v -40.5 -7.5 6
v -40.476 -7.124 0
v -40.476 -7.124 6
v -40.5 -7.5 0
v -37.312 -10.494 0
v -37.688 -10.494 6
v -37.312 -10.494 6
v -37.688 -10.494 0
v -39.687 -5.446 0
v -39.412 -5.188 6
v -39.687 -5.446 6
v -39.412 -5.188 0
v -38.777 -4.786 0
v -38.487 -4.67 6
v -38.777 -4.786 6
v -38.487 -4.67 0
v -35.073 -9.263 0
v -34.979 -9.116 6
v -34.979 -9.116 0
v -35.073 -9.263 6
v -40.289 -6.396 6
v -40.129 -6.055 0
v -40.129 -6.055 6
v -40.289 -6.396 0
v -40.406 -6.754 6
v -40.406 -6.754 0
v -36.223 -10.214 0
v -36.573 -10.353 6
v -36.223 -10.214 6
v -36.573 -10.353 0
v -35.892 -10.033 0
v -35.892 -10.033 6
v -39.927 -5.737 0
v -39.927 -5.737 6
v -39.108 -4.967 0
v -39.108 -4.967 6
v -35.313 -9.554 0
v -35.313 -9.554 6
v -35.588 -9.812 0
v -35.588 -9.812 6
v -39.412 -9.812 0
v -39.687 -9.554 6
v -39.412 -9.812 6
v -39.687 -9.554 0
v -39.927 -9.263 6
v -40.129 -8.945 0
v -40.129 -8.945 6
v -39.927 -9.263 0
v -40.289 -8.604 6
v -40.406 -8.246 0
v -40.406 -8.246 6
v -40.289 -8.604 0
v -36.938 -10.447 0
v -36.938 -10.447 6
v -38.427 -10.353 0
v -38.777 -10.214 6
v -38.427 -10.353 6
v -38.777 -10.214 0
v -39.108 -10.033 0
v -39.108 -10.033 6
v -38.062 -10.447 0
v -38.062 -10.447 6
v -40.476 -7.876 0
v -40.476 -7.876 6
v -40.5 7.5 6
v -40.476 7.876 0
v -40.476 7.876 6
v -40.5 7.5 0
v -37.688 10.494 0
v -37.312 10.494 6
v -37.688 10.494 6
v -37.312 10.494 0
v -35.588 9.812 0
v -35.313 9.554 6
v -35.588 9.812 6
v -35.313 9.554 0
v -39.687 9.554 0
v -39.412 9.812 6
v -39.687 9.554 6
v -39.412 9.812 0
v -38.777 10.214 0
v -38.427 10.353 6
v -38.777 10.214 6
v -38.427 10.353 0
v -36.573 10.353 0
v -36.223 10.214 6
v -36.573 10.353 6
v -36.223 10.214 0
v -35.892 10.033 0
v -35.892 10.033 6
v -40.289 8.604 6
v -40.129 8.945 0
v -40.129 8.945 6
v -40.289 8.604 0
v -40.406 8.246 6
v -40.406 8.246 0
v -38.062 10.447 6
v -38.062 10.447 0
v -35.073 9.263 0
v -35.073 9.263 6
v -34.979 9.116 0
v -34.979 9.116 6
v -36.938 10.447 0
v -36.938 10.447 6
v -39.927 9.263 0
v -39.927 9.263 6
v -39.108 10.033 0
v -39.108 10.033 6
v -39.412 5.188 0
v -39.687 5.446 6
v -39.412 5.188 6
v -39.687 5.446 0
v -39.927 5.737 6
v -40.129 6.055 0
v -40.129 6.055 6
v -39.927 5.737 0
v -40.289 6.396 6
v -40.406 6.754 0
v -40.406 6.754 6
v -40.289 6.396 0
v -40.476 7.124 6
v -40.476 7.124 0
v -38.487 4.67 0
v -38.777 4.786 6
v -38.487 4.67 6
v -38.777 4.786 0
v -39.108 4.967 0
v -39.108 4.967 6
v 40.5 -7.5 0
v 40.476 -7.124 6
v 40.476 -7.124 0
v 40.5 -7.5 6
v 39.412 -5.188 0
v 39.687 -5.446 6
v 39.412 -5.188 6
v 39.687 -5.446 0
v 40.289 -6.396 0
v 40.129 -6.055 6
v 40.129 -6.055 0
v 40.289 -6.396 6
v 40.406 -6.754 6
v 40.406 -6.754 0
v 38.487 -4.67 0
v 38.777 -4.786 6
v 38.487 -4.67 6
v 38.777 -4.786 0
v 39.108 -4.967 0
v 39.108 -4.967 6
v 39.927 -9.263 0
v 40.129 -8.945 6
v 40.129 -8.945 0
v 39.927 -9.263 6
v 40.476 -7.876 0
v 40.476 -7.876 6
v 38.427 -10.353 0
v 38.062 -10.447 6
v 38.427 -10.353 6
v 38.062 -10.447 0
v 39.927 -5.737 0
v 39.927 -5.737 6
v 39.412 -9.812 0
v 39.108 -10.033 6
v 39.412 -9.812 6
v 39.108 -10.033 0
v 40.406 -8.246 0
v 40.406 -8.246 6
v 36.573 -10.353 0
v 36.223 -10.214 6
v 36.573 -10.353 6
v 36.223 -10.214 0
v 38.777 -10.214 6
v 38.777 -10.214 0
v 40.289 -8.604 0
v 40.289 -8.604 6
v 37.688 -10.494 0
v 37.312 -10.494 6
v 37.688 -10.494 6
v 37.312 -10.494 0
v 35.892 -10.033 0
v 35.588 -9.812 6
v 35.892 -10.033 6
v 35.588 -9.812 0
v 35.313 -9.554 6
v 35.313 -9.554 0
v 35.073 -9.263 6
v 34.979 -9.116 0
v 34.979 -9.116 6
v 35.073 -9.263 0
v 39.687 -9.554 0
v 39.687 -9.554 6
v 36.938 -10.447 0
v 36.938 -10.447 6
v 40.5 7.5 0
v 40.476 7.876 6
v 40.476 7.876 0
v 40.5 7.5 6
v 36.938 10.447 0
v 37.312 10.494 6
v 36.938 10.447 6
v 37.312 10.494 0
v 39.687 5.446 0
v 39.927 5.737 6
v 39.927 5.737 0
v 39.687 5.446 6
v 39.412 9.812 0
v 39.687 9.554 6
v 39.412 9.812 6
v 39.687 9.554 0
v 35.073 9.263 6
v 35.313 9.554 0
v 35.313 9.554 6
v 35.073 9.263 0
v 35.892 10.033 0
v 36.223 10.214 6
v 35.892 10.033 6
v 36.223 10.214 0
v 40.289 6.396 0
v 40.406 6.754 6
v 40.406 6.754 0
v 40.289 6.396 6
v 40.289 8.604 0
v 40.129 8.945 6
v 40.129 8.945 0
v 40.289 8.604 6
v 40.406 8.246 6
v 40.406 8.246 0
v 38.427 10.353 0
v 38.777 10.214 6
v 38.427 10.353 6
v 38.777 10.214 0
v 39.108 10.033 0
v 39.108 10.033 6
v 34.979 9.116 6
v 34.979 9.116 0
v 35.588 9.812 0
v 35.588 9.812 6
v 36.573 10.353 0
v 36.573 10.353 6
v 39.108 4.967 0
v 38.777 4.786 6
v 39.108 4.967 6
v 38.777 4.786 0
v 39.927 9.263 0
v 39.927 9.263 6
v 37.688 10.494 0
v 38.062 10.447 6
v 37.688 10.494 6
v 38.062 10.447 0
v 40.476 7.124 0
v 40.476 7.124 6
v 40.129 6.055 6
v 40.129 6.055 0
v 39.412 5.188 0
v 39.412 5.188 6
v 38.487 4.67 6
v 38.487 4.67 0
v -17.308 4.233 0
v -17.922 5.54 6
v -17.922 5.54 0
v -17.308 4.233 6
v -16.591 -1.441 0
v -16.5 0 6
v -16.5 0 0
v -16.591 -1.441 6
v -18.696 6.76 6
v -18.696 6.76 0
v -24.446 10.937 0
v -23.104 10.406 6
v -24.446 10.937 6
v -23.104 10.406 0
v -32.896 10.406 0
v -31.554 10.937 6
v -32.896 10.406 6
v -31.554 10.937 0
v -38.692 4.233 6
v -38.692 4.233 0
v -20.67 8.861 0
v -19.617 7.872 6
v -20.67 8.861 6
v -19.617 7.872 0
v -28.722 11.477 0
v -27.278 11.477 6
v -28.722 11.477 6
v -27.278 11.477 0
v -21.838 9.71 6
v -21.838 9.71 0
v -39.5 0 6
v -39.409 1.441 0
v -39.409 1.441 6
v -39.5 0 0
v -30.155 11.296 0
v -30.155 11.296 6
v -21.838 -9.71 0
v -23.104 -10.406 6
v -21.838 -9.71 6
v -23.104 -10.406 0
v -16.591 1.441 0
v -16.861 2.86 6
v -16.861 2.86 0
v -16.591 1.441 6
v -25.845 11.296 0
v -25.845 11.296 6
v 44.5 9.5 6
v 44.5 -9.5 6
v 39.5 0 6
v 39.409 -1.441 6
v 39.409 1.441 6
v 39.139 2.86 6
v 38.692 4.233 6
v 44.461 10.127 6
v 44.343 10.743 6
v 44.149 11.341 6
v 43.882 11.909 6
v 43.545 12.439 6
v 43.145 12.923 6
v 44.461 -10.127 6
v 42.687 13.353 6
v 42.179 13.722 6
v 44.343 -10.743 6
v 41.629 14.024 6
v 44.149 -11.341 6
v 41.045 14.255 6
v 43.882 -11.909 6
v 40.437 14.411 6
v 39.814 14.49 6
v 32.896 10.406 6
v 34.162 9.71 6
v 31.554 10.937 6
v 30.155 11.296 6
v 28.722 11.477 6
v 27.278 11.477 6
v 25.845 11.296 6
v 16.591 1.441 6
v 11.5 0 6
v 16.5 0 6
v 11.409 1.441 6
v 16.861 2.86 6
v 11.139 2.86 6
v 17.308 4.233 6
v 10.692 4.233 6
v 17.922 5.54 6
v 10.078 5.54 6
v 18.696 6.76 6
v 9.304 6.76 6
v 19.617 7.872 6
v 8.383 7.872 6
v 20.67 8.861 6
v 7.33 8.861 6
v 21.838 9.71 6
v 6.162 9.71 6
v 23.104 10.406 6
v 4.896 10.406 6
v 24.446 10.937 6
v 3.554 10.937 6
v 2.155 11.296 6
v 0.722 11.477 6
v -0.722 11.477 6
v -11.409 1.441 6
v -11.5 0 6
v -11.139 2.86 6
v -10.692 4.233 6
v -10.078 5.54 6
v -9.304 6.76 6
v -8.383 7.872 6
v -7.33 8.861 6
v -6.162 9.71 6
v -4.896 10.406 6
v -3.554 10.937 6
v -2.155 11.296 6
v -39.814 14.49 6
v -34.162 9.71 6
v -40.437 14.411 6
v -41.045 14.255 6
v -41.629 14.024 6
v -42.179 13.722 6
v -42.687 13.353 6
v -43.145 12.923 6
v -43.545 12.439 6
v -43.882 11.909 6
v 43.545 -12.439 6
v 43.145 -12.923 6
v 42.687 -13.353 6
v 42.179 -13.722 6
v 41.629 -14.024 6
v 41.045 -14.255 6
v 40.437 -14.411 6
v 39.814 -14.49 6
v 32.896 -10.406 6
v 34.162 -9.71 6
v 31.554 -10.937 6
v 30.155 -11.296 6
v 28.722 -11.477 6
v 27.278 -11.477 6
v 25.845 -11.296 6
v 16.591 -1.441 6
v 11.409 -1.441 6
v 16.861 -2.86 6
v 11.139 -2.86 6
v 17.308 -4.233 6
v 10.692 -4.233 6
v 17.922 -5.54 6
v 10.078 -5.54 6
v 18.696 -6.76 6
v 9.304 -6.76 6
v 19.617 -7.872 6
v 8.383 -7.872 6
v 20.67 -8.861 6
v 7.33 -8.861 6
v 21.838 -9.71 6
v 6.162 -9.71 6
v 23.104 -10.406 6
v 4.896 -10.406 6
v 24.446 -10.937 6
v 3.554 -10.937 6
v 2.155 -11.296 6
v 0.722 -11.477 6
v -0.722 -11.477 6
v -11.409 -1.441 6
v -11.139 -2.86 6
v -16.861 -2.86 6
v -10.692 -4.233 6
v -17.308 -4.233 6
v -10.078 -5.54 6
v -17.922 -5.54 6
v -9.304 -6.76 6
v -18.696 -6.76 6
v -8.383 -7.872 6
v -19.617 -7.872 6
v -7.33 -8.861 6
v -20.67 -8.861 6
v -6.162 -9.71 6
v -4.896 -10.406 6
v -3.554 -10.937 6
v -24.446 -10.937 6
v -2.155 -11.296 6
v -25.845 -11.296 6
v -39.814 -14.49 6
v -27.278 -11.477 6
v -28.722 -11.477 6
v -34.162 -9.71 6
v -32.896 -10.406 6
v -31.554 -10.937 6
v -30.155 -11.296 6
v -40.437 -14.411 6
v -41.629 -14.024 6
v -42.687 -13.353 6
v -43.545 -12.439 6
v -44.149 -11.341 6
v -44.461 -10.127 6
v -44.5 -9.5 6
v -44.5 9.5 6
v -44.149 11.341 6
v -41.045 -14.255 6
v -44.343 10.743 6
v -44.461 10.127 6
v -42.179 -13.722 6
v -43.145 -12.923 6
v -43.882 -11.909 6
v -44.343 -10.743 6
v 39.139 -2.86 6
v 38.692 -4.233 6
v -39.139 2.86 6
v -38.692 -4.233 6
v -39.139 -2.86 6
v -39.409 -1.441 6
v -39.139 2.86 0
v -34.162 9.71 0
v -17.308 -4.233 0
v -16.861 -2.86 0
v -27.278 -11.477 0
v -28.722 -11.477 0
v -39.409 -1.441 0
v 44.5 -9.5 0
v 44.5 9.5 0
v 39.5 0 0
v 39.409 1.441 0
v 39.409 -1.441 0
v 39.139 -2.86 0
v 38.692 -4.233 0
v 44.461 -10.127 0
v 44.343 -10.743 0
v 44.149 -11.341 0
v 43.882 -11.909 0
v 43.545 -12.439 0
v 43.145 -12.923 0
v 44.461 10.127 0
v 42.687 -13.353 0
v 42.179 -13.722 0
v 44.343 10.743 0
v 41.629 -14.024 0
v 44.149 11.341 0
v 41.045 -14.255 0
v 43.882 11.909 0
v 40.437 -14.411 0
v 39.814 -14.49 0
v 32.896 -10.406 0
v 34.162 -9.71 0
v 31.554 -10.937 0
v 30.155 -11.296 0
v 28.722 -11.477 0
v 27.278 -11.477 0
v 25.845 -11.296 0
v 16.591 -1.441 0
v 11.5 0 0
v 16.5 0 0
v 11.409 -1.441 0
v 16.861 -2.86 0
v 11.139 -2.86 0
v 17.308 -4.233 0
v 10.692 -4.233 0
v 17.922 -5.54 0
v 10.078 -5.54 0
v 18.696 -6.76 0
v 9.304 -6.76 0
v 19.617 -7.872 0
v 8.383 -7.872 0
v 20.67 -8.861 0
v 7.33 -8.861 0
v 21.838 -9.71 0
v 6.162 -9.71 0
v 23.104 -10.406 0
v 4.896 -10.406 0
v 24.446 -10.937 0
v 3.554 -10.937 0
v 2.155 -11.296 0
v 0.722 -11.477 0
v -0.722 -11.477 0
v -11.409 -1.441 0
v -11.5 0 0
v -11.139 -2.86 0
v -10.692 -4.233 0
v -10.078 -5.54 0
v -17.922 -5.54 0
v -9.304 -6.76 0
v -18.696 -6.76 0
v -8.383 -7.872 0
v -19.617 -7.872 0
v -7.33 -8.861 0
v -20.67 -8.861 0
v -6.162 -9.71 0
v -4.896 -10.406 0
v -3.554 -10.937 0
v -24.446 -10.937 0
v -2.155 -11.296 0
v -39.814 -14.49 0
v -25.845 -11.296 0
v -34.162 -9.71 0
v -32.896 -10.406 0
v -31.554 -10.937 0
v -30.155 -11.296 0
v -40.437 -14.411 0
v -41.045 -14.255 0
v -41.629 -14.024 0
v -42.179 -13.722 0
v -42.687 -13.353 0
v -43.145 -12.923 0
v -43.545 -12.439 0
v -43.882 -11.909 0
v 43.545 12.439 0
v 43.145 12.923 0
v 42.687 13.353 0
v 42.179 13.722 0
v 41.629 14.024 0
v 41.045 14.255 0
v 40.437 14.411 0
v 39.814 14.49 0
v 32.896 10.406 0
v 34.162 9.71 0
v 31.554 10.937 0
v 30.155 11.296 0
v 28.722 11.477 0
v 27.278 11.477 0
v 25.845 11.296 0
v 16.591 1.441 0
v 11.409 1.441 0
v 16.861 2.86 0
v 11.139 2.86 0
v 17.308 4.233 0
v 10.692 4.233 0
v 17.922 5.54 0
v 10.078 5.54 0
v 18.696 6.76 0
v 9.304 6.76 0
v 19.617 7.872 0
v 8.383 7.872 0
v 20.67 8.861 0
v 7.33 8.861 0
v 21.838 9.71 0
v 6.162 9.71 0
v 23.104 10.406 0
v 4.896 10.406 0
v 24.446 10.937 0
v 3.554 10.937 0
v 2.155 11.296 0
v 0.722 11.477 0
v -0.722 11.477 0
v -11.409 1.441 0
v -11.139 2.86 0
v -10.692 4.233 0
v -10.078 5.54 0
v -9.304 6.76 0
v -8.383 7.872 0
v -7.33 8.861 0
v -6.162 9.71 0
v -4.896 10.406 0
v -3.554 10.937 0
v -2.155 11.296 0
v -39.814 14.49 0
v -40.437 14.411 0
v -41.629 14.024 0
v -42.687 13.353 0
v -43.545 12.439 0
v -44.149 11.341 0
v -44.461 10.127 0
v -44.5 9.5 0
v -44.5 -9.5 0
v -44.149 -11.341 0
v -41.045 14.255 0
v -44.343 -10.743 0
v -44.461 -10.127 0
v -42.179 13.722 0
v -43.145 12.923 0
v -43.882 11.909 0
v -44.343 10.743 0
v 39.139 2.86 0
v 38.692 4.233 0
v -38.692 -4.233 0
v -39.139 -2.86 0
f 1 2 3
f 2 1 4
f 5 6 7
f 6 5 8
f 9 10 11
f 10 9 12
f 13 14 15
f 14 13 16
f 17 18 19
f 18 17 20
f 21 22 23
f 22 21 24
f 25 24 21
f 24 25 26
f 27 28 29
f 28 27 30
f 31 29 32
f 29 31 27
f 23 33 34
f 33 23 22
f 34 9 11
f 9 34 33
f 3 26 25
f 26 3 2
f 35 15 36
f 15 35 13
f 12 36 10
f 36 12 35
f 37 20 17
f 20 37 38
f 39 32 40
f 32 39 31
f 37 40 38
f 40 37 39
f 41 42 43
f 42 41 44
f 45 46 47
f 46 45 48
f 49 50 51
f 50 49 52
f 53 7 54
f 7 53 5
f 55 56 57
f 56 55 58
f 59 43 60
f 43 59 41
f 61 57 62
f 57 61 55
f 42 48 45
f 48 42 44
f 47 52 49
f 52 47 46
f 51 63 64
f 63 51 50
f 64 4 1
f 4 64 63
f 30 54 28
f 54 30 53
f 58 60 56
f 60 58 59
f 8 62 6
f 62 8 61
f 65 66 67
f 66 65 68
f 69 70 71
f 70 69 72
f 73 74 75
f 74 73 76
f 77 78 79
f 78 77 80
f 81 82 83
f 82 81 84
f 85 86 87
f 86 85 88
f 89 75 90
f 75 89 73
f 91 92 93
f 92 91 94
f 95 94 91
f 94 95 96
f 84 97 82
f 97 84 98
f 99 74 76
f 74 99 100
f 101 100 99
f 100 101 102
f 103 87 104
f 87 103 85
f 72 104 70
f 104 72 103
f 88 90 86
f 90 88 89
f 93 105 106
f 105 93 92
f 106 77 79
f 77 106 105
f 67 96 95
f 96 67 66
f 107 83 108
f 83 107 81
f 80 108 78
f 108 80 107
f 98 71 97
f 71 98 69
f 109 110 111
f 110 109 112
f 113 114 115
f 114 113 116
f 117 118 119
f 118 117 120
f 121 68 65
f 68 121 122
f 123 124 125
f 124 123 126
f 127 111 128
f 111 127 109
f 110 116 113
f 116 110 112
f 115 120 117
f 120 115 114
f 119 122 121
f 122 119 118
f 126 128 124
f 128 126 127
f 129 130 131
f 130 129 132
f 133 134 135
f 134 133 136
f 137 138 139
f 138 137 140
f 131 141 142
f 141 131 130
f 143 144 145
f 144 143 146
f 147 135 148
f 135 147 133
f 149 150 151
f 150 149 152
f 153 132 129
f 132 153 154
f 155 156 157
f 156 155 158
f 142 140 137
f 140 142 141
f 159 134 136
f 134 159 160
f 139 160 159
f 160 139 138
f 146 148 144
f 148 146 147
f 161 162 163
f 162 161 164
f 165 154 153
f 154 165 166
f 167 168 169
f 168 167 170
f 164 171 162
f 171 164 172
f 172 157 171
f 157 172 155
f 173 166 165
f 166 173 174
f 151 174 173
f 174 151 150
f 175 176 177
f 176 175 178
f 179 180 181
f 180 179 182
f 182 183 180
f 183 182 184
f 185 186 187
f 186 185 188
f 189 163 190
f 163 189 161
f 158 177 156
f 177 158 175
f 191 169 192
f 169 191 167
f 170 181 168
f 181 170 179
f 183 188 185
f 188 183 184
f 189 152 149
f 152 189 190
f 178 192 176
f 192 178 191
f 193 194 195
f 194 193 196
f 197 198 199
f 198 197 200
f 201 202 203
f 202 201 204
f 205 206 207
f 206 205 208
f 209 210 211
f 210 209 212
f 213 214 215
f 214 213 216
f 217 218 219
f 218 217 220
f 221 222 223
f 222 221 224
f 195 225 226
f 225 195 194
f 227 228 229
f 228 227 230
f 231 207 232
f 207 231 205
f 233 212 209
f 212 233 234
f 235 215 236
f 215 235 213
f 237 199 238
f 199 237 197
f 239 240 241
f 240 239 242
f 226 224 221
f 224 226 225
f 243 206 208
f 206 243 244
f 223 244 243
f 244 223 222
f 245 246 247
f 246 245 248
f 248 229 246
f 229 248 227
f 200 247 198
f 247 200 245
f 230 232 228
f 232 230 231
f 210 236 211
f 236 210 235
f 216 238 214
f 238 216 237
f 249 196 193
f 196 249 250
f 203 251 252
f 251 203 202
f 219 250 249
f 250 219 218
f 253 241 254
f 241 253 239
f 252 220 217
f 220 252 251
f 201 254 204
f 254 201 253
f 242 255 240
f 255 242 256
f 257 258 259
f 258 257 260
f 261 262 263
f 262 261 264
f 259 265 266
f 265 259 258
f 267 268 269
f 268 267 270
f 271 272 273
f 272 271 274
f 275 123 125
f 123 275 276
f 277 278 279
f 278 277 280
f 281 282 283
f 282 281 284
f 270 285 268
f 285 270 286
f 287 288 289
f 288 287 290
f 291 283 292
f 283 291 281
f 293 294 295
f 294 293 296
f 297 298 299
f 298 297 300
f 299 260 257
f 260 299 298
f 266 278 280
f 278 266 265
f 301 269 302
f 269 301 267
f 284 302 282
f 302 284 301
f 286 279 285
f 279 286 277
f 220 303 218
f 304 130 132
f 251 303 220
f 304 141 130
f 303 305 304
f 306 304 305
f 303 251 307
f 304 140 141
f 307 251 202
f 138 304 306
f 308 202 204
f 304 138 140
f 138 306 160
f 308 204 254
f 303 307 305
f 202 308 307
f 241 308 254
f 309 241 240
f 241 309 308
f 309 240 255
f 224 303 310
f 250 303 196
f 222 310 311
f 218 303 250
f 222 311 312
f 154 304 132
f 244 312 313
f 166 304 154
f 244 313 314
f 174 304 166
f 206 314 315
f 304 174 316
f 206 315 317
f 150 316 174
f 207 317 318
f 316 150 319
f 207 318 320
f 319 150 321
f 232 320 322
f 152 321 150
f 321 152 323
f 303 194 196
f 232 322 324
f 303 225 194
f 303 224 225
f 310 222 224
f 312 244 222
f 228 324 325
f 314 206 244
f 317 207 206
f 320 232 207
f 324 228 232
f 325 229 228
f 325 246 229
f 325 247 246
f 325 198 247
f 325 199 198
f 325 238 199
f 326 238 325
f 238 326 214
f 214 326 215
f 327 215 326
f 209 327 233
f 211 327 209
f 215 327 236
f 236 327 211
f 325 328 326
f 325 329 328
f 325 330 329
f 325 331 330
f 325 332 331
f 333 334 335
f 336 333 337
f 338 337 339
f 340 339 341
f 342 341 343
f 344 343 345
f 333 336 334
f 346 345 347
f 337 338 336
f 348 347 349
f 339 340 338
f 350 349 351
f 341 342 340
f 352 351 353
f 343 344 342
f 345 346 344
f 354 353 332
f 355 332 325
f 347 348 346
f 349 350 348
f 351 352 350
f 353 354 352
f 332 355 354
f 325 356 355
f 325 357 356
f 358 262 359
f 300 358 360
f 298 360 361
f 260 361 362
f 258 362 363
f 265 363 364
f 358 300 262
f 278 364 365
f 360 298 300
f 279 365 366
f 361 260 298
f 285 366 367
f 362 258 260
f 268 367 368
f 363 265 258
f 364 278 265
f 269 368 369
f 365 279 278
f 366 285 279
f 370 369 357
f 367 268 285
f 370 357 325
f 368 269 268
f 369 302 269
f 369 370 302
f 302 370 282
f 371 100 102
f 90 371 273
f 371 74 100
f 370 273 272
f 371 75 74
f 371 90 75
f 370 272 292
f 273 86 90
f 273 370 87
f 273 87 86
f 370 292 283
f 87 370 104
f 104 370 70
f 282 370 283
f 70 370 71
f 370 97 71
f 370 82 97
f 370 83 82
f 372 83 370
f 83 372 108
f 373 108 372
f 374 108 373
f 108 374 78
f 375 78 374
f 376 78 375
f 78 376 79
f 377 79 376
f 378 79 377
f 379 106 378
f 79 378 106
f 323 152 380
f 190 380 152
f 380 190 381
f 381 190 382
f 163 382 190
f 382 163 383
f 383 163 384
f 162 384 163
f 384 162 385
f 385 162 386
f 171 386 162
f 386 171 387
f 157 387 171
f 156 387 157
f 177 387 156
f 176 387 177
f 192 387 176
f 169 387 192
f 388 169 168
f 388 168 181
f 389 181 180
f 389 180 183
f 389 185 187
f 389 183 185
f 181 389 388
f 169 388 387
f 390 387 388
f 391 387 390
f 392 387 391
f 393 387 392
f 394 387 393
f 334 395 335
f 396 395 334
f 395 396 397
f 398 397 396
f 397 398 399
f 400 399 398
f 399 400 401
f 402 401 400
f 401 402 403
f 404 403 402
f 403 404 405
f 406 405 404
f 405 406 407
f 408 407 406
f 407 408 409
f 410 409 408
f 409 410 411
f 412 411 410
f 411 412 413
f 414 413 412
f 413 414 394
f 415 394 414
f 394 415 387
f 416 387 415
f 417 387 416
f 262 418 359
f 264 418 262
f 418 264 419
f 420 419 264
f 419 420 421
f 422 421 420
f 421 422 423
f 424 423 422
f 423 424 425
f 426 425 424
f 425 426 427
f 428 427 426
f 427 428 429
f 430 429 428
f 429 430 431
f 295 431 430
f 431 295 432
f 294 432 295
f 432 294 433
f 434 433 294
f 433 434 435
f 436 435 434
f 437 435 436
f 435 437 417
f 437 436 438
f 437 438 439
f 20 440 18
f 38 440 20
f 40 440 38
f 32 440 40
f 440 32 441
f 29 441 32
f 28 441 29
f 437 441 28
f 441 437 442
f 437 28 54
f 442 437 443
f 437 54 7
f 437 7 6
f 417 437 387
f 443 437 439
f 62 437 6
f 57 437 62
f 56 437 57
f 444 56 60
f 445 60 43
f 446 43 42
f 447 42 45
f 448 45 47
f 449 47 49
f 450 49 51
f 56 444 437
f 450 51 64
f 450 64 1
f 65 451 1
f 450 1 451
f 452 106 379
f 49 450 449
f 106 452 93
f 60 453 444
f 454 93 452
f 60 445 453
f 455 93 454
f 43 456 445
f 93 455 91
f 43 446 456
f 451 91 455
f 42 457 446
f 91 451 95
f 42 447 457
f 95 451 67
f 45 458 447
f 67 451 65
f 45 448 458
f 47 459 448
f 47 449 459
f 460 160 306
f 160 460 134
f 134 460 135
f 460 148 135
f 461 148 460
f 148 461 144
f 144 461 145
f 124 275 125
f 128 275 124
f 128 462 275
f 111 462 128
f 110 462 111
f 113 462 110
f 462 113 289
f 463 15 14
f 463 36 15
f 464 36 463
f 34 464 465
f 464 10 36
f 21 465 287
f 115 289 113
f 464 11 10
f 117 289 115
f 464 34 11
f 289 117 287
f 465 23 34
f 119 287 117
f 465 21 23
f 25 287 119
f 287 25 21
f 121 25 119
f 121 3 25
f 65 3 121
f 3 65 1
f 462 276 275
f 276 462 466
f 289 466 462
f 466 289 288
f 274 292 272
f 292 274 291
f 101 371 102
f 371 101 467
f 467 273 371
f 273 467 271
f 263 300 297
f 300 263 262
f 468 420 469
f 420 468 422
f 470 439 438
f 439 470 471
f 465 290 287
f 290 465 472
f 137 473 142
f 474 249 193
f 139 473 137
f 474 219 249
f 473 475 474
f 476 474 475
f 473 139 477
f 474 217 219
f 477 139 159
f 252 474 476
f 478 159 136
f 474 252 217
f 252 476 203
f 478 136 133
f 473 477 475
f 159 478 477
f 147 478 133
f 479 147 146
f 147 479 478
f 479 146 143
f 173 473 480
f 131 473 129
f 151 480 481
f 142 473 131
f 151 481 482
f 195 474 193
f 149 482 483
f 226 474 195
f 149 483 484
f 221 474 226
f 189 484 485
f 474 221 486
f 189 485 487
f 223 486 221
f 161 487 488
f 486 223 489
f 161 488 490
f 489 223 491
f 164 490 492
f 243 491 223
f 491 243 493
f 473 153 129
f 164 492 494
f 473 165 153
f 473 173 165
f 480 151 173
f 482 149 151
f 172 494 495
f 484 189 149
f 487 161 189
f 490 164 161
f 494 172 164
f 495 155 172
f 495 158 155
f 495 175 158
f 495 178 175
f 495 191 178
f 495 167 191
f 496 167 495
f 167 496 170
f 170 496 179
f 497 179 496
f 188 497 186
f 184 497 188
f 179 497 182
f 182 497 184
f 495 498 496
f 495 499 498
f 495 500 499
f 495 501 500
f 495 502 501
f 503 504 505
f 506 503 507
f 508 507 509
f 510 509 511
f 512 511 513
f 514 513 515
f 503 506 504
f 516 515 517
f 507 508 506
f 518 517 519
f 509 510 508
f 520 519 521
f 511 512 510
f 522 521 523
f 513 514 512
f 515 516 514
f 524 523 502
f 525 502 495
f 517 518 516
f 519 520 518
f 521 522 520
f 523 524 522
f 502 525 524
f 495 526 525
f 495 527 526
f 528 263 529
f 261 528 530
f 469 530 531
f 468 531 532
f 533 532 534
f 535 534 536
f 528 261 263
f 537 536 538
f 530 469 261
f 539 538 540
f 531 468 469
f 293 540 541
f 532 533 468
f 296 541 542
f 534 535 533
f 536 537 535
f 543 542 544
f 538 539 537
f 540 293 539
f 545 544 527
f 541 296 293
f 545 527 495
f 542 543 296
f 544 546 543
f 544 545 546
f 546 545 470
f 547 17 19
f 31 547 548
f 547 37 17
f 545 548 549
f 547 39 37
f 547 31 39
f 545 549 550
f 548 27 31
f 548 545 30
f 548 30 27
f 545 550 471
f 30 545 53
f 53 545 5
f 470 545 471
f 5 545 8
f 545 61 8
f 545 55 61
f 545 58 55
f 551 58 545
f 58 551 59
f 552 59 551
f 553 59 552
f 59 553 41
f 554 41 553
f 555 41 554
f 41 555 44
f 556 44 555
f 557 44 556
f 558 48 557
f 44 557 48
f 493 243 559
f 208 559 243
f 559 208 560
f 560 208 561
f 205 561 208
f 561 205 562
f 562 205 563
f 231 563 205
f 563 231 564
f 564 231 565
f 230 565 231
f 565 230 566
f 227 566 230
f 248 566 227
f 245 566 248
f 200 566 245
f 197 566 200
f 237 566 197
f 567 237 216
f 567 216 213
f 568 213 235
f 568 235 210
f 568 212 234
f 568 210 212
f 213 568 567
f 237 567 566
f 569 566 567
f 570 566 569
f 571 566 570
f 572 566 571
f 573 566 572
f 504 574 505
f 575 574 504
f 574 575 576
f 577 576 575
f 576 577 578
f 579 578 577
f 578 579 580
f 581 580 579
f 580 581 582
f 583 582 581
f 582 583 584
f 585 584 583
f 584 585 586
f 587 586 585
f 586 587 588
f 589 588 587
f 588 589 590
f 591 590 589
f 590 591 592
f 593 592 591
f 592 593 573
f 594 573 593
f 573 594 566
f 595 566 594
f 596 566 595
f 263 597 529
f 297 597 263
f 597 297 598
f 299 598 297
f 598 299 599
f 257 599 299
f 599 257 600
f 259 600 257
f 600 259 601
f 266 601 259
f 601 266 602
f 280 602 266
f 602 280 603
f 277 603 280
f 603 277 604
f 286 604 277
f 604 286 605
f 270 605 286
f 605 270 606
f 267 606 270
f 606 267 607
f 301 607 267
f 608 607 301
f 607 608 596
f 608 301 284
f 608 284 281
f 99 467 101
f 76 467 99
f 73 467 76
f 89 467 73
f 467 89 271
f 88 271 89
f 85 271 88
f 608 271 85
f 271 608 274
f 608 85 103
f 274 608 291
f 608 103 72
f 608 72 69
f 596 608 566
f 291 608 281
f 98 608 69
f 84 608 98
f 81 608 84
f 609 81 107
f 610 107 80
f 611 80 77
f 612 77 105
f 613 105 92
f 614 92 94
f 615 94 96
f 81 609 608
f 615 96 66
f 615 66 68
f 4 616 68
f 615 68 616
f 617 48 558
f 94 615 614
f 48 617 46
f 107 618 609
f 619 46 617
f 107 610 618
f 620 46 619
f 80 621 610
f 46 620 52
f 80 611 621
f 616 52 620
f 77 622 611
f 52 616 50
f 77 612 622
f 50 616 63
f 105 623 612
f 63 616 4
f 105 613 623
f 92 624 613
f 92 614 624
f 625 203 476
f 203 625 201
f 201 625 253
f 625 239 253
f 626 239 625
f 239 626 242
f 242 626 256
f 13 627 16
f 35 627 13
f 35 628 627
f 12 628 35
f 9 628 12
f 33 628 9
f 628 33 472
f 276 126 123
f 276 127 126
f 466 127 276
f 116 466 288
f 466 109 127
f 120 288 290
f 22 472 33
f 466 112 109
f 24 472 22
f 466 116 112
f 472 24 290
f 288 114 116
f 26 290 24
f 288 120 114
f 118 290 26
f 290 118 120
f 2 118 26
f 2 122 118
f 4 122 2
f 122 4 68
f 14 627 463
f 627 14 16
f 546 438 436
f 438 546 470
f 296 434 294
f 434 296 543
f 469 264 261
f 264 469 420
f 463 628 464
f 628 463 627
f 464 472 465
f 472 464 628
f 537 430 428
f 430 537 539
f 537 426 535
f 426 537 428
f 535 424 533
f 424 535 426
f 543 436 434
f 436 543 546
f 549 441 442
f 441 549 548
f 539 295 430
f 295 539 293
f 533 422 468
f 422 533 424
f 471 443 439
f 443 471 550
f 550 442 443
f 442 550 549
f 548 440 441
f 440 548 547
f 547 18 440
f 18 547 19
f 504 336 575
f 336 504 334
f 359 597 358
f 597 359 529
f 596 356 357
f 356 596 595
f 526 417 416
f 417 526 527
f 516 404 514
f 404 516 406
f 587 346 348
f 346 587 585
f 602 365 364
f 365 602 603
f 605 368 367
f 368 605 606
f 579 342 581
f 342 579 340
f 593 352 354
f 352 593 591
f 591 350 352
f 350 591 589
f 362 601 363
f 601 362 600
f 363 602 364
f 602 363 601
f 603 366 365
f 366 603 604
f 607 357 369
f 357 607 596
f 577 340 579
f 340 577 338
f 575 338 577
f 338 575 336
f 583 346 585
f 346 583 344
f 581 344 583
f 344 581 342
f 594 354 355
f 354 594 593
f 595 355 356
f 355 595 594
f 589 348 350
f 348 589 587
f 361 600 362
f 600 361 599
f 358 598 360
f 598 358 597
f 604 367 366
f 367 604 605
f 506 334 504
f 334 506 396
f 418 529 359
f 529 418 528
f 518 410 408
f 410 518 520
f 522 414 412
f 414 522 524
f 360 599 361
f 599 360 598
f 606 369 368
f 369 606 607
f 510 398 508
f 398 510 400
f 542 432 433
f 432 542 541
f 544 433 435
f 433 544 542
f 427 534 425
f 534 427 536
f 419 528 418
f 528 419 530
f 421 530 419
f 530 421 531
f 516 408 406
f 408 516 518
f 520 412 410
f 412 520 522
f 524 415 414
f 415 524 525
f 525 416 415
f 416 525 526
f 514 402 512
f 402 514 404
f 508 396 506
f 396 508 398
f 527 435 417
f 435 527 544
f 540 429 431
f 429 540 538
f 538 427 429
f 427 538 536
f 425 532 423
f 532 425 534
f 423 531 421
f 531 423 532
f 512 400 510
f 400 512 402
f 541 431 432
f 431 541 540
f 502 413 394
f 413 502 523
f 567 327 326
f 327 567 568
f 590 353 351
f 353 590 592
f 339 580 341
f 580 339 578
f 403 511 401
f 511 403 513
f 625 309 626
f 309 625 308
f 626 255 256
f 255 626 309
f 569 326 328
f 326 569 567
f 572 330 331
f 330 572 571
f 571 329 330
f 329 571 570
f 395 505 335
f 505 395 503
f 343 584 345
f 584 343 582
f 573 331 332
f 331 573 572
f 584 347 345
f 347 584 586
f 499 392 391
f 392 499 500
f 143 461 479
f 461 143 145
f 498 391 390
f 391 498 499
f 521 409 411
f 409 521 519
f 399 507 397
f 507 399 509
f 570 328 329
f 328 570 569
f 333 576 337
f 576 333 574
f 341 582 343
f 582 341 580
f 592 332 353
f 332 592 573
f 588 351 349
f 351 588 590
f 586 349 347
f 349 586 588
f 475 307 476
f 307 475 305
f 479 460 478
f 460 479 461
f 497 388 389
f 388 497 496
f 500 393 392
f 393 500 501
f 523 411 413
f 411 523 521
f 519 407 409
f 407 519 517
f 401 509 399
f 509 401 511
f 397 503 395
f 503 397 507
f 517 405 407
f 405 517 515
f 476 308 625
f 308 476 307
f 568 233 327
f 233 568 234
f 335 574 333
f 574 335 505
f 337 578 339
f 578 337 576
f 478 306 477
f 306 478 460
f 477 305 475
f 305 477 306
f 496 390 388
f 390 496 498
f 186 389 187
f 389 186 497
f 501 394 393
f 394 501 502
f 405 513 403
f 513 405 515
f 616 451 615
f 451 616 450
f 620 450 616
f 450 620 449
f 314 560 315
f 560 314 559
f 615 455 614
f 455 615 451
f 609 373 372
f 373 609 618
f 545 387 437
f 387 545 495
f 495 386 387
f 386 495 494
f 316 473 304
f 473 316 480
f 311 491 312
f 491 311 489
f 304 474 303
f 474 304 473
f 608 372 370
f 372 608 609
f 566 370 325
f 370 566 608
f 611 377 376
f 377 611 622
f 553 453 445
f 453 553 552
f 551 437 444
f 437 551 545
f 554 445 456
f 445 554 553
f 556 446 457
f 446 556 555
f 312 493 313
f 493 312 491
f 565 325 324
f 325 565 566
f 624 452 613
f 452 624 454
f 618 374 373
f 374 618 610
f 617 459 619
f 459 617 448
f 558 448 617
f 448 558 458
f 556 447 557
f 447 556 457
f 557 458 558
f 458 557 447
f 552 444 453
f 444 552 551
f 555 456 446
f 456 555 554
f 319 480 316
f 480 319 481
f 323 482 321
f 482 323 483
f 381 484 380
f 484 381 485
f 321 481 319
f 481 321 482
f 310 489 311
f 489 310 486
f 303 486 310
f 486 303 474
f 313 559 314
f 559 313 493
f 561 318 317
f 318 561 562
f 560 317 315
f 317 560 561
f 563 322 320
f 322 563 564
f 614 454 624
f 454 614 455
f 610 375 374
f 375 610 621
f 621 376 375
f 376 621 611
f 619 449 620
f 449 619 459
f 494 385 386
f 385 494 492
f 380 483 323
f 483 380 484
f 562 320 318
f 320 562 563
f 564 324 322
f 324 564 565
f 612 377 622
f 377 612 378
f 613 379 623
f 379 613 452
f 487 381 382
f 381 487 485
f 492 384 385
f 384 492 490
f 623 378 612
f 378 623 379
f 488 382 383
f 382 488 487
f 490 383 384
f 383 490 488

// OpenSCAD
$fn = 50;


difference() {
	union() {
		hull() {
			translate(v = [-39.5000000000, 9.5000000000, 0]) {
				cylinder(h = 6, r = 5);
			}
			translate(v = [39.5000000000, 9.5000000000, 0]) {
				cylinder(h = 6, r = 5);
			}
			translate(v = [-39.5000000000, -9.5000000000, 0]) {
				cylinder(h = 6, r = 5);
			}
			translate(v = [39.5000000000, -9.5000000000, 0]) {
				cylinder(h = 6, r = 5);
			}
		}
	}
	union() {
		#translate(v = [-37.5000000000, -7.5000000000, -100.0000000000]) {
			cylinder(h = 200, r = 3.0000000000);
		}
		#translate(v = [-37.5000000000, 7.5000000000, -100.0000000000]) {
			cylinder(h = 200, r = 3.0000000000);
		}
		#translate(v = [37.5000000000, -7.5000000000, -100.0000000000]) {
			cylinder(h = 200, r = 3.0000000000);
		}
		#translate(v = [37.5000000000, 7.5000000000, -100.0000000000]) {
			cylinder(h = 200, r = 3.0000000000);
		}
		#translate(v = [-28.0000000000, 0, 0]) {
			cylinder(h = 6, r = 11.5000000000);
		}
		#cylinder(h = 6, r = 11.5000000000);
		#translate(v = [28.0000000000, 0, 0]) {
			cylinder(h = 6, r = 11.5000000000);
		}
	}
}
